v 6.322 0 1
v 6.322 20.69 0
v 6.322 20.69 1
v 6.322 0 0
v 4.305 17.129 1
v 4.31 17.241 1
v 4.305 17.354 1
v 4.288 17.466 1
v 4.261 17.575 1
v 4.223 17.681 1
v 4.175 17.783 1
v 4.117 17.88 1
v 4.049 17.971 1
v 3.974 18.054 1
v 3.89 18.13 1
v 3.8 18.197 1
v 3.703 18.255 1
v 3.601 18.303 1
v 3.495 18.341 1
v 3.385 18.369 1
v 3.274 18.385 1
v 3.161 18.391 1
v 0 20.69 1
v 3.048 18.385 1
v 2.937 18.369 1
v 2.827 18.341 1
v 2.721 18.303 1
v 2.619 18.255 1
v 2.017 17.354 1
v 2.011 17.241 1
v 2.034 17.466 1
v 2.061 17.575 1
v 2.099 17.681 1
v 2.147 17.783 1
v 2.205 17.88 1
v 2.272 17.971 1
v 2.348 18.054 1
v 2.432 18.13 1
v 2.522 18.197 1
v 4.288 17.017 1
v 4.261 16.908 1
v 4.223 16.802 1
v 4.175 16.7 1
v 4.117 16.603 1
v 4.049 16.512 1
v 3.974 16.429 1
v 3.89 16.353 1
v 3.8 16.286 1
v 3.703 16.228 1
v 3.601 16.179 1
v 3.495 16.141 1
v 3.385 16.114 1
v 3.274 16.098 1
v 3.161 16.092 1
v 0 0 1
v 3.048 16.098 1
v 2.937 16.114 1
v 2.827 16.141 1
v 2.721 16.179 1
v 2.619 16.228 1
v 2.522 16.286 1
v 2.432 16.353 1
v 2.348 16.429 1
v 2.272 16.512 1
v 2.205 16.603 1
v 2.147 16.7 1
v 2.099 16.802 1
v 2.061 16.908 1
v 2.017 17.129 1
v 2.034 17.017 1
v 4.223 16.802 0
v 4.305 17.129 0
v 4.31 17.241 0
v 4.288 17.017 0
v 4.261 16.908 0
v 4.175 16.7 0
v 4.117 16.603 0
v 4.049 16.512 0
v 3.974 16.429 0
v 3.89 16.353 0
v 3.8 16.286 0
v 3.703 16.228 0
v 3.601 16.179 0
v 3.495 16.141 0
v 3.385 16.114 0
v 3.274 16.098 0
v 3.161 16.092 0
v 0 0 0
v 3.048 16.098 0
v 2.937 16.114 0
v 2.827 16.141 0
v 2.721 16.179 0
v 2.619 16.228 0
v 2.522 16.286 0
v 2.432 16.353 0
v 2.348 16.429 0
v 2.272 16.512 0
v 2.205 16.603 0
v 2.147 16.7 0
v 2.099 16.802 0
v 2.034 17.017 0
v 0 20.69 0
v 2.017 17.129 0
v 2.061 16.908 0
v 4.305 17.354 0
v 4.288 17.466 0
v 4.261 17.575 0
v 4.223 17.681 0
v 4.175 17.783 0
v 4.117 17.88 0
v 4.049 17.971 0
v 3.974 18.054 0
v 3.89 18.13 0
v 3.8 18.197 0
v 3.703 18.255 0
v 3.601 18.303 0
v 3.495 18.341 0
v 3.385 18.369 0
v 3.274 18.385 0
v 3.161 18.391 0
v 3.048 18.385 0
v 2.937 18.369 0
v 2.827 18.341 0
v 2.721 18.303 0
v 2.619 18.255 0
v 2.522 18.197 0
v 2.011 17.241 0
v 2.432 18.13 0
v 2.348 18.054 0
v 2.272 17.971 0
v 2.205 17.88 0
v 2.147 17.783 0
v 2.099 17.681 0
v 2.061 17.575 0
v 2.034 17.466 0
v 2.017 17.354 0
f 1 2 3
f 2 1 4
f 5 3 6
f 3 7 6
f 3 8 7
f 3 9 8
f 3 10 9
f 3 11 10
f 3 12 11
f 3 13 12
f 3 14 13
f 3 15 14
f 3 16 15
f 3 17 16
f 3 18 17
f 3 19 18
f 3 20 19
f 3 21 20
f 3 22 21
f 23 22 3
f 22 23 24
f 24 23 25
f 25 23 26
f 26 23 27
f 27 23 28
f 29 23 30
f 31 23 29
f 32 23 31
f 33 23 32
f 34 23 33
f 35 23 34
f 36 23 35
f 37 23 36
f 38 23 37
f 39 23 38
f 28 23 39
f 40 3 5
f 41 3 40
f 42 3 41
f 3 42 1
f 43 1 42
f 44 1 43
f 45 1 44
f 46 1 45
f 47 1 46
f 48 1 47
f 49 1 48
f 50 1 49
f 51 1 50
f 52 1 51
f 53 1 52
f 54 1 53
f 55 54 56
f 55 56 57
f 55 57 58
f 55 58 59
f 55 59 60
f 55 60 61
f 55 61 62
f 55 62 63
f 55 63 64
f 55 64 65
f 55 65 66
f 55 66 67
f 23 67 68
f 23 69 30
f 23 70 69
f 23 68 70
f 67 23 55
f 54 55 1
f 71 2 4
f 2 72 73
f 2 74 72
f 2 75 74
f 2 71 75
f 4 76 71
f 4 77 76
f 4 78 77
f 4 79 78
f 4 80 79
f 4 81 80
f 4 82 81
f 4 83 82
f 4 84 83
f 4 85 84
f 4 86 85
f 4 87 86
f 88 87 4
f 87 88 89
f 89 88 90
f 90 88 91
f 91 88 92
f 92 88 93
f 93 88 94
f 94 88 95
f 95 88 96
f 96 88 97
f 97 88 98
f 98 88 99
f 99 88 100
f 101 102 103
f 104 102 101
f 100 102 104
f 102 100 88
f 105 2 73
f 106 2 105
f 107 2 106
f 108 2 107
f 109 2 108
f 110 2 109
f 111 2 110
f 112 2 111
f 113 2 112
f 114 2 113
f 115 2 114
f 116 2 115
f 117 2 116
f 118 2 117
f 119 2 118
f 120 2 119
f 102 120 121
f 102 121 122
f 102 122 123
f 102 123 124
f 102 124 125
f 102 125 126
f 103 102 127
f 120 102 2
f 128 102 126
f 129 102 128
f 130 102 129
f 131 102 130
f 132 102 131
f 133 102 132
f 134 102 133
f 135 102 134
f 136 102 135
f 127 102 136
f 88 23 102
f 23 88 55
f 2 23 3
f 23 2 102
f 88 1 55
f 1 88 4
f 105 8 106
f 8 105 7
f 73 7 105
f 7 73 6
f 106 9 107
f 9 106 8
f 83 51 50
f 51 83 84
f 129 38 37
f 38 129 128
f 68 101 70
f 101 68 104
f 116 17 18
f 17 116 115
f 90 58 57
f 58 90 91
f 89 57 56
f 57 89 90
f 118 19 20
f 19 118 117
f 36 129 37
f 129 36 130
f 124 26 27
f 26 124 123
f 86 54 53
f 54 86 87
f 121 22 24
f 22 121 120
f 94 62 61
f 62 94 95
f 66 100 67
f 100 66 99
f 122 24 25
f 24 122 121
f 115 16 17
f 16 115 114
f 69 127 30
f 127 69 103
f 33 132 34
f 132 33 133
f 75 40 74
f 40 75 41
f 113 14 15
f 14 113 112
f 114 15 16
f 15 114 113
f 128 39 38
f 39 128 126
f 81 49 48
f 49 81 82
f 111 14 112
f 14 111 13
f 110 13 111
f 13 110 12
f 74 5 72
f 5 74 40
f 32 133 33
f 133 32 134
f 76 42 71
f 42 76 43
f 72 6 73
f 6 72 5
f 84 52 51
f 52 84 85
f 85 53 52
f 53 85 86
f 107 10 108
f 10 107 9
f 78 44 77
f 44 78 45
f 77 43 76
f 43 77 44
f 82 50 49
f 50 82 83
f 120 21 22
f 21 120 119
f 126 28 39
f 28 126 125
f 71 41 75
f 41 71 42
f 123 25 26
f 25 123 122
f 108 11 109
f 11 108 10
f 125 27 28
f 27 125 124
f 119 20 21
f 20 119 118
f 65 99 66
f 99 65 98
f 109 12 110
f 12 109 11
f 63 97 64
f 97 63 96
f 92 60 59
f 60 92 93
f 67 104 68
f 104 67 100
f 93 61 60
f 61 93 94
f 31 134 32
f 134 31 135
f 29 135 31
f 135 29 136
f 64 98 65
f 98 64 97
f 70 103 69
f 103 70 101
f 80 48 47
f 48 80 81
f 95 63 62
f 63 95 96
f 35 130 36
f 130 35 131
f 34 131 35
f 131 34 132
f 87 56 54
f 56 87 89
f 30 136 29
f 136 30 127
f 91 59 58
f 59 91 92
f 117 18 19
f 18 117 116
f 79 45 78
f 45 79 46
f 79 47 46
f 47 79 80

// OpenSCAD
/*
 * PROMPT: Door panel of the Polish outdoor toilet (sławojka) in H0 scale (1:87).
 * Traditional circular moon cutout centred horizontally and positioned near the top.
 * Flat 1 mm panel, exterior face up.
 */

$fn = 64;
S = 1/87;
panel_t = 1.0;

door_w_real = 550;
door_h_real = 1800;
moon_r_real = 100;
moon_z_real = 1500;

door_w = door_w_real * S;
door_h = door_h_real * S;
moon_r = moon_r_real * S;
moon_z = moon_z_real * S;

module door() {
    difference() {
        cube([door_w, door_h, panel_t]);

        // circular moon cutout, centred horizontally
        translate([door_w/2, moon_z, -1])
            cylinder(r=moon_r, h=panel_t+2, $fn=64);
    }
}

door();
